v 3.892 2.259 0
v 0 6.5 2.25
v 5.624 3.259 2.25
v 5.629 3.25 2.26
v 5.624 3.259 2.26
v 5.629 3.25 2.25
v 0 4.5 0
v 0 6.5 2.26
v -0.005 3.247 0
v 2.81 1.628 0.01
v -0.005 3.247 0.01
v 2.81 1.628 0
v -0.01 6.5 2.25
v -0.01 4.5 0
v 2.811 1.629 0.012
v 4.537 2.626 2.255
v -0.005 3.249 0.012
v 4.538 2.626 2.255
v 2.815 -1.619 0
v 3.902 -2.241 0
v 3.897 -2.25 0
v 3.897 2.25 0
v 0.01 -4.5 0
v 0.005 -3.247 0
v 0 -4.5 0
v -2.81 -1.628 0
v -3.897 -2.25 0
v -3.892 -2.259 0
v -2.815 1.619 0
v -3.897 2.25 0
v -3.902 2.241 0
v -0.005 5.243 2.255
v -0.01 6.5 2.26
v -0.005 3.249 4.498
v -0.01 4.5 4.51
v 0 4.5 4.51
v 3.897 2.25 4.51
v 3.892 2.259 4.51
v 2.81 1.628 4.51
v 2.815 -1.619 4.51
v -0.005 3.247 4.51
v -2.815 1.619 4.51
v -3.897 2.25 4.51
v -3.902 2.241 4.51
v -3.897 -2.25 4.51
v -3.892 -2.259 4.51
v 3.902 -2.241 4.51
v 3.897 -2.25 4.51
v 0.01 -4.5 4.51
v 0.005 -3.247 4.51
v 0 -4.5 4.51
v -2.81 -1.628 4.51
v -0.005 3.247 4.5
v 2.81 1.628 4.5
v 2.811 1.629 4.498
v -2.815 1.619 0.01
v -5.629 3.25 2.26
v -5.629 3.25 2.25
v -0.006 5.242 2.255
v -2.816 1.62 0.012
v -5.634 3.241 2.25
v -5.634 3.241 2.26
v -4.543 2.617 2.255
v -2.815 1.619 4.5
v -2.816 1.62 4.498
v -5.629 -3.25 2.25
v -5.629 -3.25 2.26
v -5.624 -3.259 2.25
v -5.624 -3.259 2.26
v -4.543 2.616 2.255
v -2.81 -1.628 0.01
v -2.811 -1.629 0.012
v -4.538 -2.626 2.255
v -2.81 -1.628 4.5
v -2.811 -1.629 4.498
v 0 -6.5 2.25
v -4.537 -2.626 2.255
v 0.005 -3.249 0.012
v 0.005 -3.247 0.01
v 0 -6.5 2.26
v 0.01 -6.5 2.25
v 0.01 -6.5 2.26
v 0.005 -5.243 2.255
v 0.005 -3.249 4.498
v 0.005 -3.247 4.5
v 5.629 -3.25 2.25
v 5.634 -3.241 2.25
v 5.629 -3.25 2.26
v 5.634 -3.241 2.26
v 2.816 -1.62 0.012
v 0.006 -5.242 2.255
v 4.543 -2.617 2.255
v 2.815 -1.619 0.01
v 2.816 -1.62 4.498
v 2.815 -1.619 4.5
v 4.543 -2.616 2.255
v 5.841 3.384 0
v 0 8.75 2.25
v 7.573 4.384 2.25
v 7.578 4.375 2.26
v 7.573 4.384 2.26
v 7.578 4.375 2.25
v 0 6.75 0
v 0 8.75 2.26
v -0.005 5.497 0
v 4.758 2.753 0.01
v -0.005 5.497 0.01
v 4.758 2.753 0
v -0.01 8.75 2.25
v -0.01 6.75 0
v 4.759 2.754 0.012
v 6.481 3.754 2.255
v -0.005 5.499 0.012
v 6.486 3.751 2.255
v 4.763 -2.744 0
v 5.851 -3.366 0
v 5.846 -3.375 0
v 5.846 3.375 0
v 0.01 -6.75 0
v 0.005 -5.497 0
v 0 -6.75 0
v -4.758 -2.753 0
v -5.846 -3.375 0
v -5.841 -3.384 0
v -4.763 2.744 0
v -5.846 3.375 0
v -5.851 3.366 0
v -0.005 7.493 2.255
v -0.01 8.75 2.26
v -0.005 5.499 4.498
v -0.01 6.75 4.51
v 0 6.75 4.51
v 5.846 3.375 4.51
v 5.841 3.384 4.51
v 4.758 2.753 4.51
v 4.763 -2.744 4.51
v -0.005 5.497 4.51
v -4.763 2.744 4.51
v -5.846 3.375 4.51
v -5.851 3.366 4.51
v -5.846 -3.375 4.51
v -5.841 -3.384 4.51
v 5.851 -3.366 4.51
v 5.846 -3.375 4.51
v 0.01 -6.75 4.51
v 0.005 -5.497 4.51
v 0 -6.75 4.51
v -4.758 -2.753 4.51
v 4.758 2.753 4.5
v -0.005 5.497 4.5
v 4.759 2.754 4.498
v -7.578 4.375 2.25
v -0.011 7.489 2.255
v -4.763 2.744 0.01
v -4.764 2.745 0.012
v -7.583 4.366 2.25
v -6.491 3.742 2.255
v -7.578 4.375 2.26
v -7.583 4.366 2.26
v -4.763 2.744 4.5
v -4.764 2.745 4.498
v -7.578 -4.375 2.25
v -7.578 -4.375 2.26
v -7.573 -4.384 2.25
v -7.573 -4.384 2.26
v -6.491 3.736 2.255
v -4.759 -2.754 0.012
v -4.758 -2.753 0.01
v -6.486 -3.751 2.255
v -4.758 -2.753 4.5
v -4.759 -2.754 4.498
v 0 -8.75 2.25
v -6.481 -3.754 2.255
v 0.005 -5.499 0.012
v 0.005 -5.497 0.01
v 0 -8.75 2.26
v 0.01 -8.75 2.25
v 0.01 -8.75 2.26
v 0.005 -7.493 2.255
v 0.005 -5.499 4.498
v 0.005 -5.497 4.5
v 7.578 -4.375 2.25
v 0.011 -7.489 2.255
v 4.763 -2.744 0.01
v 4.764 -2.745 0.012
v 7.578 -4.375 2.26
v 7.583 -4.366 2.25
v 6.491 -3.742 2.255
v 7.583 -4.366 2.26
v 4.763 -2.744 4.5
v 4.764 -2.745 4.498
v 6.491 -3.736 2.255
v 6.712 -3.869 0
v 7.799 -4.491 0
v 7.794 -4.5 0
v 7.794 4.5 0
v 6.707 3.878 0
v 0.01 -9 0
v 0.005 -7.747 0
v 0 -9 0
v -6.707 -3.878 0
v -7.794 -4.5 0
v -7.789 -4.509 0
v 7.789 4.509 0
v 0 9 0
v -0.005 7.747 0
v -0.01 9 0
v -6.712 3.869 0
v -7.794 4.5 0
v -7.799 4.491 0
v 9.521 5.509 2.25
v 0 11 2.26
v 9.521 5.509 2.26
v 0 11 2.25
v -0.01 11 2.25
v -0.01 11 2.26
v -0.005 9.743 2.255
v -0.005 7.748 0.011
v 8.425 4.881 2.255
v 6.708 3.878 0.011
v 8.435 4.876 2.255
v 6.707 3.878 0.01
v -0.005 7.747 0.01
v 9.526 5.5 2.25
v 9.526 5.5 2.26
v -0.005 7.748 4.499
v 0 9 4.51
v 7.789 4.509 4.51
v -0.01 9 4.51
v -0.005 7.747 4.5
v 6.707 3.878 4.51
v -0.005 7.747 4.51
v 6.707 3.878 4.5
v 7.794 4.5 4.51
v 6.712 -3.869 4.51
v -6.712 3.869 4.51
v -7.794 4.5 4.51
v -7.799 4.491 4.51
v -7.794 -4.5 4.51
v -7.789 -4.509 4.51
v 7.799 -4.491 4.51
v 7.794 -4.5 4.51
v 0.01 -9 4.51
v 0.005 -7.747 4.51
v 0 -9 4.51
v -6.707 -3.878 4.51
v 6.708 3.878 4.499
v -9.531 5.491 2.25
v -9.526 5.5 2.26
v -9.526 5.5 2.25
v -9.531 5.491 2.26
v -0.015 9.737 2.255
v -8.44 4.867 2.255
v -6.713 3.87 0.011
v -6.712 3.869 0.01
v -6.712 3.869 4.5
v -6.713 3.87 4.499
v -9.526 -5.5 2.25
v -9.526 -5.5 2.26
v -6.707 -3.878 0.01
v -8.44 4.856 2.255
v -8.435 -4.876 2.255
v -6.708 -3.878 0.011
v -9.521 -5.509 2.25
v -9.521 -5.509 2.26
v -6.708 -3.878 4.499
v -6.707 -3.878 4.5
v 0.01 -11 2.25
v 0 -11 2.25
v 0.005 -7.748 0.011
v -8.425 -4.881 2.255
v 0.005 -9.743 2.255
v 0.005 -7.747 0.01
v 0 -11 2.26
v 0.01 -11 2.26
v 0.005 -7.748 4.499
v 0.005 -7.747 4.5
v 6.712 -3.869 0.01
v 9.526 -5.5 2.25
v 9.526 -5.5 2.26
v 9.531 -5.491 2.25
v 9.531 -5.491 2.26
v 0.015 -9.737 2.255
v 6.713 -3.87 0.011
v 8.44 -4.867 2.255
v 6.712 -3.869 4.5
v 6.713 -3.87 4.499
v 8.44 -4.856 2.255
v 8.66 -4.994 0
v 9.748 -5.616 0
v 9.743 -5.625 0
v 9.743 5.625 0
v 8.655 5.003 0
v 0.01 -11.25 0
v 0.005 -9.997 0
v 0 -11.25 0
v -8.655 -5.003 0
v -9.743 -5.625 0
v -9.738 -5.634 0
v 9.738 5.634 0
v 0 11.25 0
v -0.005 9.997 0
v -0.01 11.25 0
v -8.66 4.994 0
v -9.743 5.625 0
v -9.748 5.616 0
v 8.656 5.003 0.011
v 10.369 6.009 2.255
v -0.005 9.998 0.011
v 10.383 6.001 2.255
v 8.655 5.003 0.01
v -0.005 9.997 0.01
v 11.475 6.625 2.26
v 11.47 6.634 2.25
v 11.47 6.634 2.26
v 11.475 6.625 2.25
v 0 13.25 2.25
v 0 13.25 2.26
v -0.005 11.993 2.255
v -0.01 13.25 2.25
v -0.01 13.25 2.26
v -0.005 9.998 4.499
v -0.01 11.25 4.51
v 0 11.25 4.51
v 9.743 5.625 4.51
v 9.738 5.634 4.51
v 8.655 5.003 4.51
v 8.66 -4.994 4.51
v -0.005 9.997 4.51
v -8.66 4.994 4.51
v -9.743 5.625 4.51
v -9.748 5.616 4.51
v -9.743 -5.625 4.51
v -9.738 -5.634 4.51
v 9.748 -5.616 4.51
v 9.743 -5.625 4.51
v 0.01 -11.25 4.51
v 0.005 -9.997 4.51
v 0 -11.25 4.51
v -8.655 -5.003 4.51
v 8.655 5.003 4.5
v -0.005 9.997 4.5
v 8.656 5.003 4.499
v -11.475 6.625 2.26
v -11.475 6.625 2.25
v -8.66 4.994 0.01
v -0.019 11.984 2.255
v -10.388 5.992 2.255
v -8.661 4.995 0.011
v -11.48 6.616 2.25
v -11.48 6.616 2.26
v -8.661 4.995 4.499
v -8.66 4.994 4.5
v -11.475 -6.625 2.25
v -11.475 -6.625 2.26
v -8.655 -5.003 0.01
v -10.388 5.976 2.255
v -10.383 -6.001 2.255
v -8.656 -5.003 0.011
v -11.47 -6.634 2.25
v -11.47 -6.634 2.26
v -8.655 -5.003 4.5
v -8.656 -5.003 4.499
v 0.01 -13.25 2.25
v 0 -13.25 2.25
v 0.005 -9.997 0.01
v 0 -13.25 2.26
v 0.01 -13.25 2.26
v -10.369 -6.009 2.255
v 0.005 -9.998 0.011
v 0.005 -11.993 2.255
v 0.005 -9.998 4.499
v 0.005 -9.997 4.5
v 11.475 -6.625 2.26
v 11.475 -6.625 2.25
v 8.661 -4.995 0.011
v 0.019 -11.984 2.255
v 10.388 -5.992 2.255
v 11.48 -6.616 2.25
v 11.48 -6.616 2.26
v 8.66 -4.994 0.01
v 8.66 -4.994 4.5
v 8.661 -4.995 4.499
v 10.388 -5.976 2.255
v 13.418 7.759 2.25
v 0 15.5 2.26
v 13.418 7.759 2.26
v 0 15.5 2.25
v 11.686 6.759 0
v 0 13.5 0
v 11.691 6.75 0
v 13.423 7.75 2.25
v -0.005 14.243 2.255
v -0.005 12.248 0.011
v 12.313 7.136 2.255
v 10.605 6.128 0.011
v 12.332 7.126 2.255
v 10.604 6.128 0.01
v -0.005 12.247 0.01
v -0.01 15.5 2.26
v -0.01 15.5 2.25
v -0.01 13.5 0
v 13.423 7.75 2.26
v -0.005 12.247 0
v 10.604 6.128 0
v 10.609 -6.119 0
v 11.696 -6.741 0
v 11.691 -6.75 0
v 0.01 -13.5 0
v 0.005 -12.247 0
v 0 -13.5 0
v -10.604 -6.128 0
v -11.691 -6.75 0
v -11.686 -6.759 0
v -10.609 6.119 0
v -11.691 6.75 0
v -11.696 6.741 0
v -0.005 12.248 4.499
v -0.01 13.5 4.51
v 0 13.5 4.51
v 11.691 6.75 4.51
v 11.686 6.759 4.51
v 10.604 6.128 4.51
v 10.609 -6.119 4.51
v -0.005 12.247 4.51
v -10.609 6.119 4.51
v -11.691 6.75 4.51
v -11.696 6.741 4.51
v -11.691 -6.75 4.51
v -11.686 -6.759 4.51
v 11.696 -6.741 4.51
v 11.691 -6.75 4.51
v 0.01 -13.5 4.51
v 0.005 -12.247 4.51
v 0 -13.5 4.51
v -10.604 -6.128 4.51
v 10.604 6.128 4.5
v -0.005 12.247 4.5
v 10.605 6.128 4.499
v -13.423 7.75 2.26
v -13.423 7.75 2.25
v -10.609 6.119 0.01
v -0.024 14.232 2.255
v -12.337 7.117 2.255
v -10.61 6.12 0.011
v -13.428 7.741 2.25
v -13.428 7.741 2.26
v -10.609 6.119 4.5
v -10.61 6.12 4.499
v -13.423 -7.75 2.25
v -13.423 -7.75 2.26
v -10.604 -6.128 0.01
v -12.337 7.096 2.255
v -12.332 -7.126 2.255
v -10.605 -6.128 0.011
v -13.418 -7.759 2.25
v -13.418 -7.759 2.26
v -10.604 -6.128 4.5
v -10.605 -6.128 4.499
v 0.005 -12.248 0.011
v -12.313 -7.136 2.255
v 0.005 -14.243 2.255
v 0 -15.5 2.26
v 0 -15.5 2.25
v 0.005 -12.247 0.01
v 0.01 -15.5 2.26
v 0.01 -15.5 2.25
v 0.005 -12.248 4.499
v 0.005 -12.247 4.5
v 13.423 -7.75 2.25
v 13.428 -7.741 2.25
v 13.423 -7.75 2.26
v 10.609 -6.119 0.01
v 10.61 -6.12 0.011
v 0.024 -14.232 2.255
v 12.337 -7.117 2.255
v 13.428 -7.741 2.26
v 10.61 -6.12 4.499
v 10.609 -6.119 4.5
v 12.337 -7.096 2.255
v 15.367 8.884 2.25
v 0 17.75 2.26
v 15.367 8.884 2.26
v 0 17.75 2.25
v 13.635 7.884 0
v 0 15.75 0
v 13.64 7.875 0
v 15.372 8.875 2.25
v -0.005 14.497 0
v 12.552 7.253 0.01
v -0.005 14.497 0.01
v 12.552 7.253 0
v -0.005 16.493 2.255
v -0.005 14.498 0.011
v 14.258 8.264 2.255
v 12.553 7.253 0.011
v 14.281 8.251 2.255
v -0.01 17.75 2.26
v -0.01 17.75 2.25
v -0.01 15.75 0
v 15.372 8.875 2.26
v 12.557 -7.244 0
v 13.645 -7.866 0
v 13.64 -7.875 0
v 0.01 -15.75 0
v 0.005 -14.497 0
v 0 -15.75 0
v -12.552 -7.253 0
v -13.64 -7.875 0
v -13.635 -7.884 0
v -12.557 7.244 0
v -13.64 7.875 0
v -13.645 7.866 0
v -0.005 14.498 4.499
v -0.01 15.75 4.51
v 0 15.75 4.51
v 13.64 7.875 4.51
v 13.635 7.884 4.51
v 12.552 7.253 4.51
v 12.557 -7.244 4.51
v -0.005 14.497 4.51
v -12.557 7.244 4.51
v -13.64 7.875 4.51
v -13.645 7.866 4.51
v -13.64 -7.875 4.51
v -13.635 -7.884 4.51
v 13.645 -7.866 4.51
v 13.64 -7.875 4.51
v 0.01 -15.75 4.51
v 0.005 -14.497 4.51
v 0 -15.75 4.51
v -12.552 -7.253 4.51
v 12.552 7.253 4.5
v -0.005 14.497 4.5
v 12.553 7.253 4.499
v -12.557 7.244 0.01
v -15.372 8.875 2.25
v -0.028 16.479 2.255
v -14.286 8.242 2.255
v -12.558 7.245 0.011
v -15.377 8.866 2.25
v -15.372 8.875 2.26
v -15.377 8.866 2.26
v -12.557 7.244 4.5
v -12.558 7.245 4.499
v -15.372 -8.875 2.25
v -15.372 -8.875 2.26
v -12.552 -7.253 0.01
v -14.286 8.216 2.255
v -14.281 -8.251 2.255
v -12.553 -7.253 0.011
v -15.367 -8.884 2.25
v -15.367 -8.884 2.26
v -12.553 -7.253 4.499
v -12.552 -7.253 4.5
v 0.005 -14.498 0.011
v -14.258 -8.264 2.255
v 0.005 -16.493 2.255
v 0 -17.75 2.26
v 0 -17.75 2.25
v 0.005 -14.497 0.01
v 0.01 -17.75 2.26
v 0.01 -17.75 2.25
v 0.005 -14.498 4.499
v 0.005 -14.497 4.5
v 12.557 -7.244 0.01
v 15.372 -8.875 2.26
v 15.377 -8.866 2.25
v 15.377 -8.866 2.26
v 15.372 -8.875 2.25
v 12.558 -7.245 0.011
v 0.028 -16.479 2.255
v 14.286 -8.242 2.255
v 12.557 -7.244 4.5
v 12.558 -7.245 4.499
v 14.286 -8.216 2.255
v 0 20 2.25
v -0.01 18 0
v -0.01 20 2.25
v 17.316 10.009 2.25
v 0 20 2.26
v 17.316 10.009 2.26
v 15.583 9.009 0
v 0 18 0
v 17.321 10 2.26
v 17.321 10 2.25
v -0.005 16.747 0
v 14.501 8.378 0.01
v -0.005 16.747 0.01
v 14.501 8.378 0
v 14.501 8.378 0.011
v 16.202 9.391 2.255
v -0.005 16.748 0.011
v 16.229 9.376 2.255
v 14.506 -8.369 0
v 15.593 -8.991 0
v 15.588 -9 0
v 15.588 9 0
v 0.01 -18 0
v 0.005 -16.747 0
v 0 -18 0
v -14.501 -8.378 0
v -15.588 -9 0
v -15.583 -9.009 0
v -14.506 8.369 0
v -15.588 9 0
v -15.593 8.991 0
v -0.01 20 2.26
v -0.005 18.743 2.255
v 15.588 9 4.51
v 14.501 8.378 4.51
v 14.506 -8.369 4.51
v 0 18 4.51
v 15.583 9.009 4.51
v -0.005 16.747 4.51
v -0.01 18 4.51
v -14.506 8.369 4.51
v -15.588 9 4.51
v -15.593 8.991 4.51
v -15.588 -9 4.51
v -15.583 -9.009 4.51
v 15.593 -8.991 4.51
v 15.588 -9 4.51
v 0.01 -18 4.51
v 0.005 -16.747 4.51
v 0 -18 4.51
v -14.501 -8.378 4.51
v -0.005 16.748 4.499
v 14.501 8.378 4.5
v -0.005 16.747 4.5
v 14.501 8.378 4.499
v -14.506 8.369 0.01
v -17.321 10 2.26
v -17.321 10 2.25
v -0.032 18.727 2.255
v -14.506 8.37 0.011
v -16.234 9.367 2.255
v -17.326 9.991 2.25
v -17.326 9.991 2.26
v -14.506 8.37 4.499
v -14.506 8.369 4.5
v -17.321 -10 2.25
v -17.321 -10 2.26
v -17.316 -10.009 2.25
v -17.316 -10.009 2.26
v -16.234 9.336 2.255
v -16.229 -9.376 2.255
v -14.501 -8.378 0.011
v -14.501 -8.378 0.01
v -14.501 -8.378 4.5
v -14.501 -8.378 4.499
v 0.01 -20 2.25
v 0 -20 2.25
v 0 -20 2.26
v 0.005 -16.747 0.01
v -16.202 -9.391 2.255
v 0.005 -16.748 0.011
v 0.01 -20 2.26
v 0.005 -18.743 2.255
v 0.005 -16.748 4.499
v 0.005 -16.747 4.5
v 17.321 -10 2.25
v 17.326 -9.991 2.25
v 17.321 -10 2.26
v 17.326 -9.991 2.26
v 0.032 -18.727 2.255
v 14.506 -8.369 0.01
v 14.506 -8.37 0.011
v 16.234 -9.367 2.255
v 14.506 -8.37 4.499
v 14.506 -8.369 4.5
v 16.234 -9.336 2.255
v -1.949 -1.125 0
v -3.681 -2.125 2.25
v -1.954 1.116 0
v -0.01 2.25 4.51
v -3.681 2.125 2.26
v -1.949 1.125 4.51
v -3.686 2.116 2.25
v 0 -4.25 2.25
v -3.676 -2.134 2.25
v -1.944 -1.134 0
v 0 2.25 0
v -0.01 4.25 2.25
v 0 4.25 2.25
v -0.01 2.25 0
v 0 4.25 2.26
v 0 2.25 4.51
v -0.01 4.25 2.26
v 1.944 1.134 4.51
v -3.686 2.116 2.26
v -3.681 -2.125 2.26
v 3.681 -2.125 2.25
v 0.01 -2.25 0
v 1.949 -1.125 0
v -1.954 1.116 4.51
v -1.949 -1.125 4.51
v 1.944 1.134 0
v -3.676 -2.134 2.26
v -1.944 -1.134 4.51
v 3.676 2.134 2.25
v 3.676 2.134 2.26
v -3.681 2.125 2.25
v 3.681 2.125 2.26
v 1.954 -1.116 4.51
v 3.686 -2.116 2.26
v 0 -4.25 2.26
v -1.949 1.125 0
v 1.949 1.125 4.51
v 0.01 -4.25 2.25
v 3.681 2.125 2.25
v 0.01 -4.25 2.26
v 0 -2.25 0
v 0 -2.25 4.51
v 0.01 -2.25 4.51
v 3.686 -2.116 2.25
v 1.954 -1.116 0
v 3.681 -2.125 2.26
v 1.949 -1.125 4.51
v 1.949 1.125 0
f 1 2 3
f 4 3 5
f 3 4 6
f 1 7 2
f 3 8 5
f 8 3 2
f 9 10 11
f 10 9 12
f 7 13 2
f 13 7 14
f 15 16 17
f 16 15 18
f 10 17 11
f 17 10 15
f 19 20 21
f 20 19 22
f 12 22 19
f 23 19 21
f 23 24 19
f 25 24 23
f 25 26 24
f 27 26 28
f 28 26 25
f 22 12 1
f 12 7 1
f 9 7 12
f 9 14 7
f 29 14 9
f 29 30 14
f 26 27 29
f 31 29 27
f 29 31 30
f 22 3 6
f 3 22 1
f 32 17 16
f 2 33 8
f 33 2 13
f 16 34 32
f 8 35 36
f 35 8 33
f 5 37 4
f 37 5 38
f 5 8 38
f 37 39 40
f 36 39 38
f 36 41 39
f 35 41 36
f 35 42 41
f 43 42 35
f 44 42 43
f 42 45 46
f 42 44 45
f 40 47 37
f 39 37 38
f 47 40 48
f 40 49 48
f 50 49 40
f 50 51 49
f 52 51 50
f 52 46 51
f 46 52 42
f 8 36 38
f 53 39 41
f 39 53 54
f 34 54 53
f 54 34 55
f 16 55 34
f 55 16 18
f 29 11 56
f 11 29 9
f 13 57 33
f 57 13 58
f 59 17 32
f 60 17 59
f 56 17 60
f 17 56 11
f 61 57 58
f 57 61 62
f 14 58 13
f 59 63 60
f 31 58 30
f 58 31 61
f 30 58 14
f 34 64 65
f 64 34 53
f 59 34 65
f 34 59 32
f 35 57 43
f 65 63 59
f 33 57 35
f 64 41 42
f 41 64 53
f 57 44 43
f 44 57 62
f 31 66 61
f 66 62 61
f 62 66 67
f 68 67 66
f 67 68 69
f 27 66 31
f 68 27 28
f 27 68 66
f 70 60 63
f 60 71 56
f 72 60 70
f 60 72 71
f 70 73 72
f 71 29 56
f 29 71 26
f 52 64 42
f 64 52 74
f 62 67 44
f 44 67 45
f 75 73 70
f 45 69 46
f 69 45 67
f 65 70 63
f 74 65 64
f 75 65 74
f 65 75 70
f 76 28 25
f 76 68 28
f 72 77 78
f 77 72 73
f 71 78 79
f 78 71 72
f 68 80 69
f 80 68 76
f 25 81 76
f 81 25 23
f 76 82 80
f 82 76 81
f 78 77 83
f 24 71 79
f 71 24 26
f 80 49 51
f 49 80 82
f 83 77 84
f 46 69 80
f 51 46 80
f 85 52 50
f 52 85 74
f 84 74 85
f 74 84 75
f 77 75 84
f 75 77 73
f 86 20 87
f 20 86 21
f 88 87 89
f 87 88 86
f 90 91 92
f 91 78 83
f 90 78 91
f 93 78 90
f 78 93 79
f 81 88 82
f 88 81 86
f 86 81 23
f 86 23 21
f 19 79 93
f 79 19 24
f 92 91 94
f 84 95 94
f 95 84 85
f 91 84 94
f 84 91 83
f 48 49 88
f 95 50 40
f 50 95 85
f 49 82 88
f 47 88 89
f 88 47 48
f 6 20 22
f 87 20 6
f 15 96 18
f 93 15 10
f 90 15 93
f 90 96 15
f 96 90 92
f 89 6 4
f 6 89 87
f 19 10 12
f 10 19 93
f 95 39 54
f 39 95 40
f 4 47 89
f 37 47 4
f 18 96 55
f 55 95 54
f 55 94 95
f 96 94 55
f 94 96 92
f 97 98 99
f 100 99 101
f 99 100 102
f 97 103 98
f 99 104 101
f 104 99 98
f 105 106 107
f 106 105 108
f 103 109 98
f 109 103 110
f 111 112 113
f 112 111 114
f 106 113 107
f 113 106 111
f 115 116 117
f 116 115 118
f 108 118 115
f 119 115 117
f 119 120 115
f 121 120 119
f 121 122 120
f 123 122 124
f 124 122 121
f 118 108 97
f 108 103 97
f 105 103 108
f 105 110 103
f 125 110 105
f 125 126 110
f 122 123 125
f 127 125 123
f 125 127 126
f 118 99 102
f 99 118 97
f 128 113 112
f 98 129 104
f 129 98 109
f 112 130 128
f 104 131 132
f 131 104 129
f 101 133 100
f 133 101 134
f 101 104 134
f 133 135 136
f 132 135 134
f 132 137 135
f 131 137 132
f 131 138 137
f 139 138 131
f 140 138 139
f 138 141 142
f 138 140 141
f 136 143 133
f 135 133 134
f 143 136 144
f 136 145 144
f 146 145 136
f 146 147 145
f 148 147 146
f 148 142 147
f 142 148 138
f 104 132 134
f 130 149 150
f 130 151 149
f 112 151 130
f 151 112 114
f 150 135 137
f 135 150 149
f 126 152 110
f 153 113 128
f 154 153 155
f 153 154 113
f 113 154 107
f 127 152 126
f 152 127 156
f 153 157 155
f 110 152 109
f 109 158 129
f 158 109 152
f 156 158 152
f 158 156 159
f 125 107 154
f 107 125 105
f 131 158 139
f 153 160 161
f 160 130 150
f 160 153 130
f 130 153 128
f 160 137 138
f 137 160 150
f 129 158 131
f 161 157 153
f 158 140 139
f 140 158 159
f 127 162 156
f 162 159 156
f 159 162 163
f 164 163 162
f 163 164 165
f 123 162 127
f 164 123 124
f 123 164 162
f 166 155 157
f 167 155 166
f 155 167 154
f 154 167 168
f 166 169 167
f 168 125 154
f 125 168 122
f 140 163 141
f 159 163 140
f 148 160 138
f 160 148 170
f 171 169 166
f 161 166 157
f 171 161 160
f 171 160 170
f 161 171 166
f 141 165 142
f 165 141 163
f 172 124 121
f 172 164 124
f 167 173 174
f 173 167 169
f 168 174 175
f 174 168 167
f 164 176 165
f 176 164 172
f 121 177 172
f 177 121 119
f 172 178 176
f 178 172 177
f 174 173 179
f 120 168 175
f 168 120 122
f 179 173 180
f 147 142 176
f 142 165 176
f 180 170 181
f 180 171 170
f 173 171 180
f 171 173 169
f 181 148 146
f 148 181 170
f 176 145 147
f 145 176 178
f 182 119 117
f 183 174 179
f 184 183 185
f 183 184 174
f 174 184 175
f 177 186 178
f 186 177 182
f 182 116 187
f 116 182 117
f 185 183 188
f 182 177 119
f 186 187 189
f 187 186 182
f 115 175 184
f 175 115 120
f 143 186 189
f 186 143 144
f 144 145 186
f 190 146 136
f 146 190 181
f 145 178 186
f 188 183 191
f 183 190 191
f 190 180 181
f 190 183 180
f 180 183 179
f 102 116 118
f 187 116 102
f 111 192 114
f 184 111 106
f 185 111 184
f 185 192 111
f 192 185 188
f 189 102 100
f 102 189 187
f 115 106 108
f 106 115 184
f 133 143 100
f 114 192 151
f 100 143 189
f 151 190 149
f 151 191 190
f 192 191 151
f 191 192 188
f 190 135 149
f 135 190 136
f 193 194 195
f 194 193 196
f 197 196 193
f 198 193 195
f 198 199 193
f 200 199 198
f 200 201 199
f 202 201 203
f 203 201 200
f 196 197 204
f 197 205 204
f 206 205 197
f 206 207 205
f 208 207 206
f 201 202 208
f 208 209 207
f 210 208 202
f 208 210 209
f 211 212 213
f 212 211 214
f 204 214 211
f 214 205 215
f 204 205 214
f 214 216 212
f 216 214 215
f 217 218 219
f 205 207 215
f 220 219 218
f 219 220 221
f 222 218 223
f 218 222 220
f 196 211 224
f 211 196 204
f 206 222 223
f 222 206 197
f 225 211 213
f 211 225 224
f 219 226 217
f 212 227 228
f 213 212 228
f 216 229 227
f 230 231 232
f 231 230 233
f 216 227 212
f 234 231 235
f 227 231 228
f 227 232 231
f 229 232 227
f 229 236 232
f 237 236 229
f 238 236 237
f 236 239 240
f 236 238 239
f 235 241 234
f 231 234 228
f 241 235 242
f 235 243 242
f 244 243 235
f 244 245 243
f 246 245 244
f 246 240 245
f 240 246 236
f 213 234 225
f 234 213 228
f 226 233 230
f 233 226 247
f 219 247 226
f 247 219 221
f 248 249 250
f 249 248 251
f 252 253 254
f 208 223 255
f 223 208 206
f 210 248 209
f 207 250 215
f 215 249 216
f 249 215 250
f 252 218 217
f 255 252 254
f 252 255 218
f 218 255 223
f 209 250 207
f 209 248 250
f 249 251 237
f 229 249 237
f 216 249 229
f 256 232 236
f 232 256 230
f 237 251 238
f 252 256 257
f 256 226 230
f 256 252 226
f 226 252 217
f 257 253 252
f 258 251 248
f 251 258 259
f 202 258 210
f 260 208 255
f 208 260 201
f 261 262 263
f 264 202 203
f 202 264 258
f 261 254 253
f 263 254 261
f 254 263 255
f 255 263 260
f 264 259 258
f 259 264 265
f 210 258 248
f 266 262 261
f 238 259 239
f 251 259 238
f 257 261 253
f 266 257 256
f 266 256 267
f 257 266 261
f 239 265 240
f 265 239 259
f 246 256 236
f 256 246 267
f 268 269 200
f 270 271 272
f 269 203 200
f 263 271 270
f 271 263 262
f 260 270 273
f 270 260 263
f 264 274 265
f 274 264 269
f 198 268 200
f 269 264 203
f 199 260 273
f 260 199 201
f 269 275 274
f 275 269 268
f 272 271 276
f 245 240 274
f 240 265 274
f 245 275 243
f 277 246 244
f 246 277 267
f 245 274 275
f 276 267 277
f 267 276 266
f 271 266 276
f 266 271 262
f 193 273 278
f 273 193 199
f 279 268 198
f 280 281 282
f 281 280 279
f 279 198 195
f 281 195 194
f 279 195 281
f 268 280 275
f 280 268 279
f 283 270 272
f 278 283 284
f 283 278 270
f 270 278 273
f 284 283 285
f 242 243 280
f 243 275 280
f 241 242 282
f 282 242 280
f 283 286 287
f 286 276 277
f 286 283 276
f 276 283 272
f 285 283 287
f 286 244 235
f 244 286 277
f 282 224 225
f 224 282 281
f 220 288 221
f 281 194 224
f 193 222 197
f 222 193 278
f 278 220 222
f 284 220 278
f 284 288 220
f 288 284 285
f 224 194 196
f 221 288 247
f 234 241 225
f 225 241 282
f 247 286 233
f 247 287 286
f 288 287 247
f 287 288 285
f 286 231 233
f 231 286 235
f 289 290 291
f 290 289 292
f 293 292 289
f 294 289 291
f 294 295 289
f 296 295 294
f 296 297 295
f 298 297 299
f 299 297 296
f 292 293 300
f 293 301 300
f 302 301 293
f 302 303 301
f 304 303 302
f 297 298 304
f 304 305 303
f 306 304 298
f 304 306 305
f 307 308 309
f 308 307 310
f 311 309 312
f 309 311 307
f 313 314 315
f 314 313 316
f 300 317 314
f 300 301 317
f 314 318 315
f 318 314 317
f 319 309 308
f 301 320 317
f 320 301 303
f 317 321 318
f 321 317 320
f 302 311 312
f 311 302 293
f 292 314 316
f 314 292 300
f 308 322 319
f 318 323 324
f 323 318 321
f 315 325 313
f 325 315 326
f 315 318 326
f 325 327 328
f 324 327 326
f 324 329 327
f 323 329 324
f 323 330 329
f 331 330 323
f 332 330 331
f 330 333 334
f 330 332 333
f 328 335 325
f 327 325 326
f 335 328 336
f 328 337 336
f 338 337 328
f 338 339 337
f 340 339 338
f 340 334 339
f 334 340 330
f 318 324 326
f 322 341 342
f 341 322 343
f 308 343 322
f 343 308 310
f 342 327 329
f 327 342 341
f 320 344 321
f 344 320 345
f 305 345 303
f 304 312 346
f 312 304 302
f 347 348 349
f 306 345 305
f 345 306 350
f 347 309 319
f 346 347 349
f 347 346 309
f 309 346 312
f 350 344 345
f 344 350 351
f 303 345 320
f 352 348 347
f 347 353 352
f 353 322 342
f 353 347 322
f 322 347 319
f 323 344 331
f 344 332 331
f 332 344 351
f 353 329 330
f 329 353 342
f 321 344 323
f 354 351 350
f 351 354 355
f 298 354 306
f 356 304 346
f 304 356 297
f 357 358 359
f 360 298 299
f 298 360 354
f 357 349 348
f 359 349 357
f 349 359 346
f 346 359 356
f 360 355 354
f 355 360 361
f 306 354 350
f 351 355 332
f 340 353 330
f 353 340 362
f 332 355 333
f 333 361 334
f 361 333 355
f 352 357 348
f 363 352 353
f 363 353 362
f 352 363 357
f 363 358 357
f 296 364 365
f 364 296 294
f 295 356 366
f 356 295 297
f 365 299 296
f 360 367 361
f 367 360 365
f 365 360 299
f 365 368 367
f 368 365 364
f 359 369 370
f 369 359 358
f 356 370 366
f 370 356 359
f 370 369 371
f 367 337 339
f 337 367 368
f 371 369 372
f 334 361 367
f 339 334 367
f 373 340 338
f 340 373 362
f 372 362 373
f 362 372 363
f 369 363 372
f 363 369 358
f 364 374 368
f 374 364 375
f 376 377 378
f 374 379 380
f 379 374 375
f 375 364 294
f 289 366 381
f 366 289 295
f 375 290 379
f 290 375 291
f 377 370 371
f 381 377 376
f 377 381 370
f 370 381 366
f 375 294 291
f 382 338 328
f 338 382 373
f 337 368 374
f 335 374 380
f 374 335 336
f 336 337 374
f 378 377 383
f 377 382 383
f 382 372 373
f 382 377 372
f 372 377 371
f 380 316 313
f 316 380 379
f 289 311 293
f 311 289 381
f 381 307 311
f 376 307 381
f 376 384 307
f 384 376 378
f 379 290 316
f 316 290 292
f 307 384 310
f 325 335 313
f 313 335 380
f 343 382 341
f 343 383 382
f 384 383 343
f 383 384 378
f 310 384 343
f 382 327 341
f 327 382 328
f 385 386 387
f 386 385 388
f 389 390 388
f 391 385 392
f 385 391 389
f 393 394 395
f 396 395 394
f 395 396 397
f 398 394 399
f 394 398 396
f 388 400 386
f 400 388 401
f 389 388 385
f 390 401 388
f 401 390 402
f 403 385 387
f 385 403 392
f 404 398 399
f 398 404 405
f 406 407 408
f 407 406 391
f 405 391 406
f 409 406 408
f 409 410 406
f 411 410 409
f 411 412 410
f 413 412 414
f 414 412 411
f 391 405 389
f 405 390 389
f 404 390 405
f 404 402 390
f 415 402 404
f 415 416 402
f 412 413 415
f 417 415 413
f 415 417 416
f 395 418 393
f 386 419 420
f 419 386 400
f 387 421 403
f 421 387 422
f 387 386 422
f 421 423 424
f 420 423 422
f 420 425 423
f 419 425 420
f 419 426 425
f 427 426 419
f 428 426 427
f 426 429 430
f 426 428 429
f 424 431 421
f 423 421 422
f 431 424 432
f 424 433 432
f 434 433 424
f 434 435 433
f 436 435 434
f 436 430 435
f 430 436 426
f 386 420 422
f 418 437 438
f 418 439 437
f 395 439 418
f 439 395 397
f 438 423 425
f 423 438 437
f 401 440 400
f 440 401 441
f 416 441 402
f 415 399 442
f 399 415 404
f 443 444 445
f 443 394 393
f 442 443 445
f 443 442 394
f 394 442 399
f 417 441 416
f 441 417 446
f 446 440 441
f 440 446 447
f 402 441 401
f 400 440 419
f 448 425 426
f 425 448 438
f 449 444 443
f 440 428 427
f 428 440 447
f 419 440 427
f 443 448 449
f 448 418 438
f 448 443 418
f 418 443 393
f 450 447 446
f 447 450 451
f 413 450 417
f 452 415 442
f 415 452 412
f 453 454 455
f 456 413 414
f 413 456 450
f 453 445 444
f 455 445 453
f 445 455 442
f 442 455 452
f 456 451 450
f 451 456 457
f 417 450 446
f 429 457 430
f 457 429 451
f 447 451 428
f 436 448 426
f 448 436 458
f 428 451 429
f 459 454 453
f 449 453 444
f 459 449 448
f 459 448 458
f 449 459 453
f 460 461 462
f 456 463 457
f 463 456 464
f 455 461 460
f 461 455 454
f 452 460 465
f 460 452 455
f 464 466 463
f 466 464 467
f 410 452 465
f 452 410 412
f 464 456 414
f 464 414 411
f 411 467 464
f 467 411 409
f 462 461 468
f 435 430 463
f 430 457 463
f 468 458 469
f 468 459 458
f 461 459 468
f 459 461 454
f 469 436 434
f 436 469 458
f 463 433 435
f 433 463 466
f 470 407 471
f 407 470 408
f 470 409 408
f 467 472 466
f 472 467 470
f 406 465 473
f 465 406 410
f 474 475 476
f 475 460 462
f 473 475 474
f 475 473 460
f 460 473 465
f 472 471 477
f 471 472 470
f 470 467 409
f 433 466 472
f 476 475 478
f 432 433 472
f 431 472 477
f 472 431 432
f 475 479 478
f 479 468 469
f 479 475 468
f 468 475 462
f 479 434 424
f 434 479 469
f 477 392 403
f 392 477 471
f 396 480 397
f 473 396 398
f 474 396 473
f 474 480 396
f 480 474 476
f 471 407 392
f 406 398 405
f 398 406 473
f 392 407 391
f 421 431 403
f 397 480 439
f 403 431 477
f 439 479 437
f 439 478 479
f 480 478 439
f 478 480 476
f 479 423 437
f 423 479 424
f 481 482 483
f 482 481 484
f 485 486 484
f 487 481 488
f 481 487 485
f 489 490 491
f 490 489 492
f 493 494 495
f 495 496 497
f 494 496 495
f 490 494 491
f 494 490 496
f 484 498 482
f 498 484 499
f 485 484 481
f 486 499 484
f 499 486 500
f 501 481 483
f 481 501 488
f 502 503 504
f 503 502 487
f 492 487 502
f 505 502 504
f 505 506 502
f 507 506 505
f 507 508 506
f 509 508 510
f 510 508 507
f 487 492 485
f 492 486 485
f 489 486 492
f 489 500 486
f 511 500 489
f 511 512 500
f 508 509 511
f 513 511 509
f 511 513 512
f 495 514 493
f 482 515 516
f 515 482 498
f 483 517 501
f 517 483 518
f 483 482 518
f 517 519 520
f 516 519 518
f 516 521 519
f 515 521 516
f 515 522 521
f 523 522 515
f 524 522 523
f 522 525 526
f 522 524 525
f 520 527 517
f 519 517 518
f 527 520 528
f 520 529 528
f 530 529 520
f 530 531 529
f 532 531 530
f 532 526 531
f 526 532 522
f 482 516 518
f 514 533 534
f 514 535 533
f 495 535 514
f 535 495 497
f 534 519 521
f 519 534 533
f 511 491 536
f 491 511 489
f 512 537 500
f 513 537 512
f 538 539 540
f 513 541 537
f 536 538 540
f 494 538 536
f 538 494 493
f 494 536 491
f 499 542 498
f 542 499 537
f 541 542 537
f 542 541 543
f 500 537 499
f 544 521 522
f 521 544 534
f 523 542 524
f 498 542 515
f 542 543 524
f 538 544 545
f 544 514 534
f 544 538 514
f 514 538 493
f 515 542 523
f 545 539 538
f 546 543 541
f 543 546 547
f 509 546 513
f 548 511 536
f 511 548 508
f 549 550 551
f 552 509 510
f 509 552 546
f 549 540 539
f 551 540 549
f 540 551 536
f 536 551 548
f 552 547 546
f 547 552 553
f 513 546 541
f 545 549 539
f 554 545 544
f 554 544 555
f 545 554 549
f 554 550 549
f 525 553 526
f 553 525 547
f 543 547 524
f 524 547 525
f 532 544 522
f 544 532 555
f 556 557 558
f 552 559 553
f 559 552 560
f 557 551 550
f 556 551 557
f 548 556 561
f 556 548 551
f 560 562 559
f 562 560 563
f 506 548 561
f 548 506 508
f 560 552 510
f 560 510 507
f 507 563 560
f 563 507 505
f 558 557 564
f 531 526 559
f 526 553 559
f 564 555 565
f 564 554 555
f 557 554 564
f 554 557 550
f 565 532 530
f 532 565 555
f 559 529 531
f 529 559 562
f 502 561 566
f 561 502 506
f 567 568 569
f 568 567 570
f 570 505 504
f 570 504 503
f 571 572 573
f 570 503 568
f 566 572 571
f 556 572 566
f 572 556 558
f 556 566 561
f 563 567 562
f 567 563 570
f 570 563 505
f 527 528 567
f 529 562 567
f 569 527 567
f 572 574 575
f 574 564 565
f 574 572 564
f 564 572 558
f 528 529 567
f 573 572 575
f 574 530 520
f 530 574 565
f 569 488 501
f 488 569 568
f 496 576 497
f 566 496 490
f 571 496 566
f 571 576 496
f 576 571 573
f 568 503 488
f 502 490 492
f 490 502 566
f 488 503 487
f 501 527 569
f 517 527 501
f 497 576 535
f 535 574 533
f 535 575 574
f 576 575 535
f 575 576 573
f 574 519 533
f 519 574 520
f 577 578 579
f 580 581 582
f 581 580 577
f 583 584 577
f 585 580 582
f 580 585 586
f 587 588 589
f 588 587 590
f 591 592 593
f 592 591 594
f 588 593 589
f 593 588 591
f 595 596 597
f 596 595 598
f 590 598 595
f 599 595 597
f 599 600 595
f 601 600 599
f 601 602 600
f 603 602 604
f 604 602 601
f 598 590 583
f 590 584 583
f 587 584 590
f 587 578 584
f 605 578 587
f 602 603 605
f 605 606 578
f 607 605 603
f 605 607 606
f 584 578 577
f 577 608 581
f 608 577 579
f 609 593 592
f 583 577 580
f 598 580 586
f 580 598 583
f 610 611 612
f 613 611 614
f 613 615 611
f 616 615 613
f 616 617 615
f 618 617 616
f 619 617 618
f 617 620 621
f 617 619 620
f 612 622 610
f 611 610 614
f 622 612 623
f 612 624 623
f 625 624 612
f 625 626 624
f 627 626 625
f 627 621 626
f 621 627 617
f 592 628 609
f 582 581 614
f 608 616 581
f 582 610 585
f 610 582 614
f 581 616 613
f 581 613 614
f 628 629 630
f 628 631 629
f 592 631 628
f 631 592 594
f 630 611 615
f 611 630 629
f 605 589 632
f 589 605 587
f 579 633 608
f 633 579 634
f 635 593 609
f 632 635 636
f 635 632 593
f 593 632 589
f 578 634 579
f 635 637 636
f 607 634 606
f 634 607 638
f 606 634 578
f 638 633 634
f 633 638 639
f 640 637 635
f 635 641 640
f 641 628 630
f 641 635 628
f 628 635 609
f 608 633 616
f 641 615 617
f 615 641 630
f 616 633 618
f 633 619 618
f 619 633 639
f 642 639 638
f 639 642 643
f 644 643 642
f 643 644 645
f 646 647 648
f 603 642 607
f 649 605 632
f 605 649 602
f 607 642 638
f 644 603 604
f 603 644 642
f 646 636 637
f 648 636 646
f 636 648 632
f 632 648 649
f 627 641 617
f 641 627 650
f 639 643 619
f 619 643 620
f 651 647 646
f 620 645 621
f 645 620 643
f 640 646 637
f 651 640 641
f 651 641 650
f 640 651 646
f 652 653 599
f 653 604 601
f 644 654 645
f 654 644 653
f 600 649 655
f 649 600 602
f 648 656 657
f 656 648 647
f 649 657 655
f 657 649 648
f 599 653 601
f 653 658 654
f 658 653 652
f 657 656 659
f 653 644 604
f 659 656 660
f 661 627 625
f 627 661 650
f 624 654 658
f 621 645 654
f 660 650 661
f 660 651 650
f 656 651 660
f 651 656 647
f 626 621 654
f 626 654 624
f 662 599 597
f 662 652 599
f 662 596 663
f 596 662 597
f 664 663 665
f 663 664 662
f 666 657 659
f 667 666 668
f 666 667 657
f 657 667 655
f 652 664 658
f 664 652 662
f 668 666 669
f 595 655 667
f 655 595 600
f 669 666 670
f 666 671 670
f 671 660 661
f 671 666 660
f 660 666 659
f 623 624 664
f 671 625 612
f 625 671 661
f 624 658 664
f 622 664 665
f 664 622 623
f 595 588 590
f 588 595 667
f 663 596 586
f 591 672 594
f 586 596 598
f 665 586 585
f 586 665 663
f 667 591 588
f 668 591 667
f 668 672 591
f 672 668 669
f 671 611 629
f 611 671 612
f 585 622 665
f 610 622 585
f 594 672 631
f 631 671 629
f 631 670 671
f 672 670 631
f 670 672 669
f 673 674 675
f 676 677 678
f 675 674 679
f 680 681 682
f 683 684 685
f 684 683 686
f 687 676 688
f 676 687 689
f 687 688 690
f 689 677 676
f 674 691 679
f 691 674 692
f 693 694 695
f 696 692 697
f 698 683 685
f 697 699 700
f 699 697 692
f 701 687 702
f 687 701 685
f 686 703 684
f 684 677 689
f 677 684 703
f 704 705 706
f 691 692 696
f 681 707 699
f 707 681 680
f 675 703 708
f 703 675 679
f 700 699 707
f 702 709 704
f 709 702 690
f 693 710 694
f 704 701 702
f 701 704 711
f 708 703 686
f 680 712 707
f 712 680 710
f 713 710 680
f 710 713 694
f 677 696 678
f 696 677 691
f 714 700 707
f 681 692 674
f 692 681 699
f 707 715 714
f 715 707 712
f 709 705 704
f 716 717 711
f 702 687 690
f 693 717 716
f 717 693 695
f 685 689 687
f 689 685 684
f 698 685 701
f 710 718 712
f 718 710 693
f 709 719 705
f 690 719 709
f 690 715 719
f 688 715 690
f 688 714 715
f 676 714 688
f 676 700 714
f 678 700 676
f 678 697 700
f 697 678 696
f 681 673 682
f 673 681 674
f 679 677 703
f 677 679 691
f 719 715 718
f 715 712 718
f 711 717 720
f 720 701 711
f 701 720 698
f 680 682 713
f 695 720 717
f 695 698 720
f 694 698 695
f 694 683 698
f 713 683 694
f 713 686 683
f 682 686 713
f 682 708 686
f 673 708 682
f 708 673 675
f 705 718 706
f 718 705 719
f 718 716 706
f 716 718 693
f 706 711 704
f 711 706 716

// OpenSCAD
// file: lib.scad
/* Lib generating hexagonal print-in-place fidgets. */

NB_SIDES     = 6;
ATOM         = .01;
DO_CROSS_CUT = $preview;

// Lower slanted part of a wall
module side_bottom(base, height, shift) {
    hull() {
        cube([ base, ATOM, ATOM ]);
        translate([ shift, 0, height / 2 ])
        cube([ base, ATOM, ATOM ]);
    }
}

// Upper slanted part of a wall
module side_top(base, height, shift) {
    hull() {
        translate([ 0, 0, height ])
        cube([ base, ATOM, ATOM ]);
        translate([ shift, 0, height / 2 ])
        cube([ base, ATOM, ATOM ]);
    }
}

// Complete wall
module piece(radius, base, height, shift, allow_cut = true) {
    n = DO_CROSS_CUT && allow_cut ? NB_SIDES / 2 - 1 : NB_SIDES - 1;
    for (i = [0:n]) {
        hull() {
            rotate([ 0, 0, 360 / NB_SIDES * i ])
            translate([ radius, 0, 0 ])
            side_bottom(base, height, shift);

            rotate([ 0, 0, 360 / NB_SIDES * (i + 1) ])
            translate([ radius, 0, 0 ])
            side_bottom(base, height, shift);
        }

        hull() {
            rotate([ 0, 0, 360 / NB_SIDES * i ])
            translate([ radius, 0, 0 ])
            side_top(base, height, shift);

            rotate([ 0, 0, 360 / NB_SIDES * (i + 1) ])
            translate([ radius, 0, 0 ])
            side_top(base, height, shift);
        }
    }
}

// Complete fidget with concentric walls
module fidget(radius_min, // exact minimum radius
              radius_max, // maximum radius (may not be exactly met)
              base,       // thickness of wall touching floor
              height,     // height of wall
              shift,      // lateral wall shift, to obtain a slant
              gap,        // lateral space between walls
              filled_center = false,    // fill the center piece or not
              only_outer_frame = false, // generate only the outmost wall
) {
    step = base + gap;
    n_pieces = floor((radius_max - radius_min) / step); // how many walls
    outer_r = radius_min + step * n_pieces; // outer radius (not counting 2x shift)

    rotate([ 0, 0, 30 ]) {
        if (only_outer_frame) {
            piece(outer_r, base, height, shift, false);
        } else {
            for (r = [radius_min:step:radius_max]) {
                if (r == radius_min && filled_center) {
                    hull() piece(r, base, height, shift);
                } else {
                    piece(r, base, height, shift);
                }
            }
        }
    }
}

// Example

GAP        = 1;
BASE       = 1.25;
SHIFT      = GAP;
HEIGHT     = 4;
DIAMETER   = 140;
RADIUS_MAX = DIAMETER / 2;
RADIUS_MIN = 1;

fidget(RADIUS_MIN, RADIUS_MAX, BASE, HEIGHT, SHIFT, GAP, true);

% fidget(RADIUS_MIN, RADIUS_MAX, BASE, HEIGHT, SHIFT, GAP, true, true);
// main file
use <lib.scad>

GAP               = 1;
BASE              = 1.25;
SHIFT             = 2;
HEIGHT            = 4.5;
DIAMETER          = 35;;
RADIUS_MAX        = DIAMETER / 2;
RADIUS_MIN        = 1;
FILLED_CENTER     = true;

fidget(RADIUS_MIN, RADIUS_MAX, BASE, HEIGHT, SHIFT, GAP, FILLED_CENTER);
